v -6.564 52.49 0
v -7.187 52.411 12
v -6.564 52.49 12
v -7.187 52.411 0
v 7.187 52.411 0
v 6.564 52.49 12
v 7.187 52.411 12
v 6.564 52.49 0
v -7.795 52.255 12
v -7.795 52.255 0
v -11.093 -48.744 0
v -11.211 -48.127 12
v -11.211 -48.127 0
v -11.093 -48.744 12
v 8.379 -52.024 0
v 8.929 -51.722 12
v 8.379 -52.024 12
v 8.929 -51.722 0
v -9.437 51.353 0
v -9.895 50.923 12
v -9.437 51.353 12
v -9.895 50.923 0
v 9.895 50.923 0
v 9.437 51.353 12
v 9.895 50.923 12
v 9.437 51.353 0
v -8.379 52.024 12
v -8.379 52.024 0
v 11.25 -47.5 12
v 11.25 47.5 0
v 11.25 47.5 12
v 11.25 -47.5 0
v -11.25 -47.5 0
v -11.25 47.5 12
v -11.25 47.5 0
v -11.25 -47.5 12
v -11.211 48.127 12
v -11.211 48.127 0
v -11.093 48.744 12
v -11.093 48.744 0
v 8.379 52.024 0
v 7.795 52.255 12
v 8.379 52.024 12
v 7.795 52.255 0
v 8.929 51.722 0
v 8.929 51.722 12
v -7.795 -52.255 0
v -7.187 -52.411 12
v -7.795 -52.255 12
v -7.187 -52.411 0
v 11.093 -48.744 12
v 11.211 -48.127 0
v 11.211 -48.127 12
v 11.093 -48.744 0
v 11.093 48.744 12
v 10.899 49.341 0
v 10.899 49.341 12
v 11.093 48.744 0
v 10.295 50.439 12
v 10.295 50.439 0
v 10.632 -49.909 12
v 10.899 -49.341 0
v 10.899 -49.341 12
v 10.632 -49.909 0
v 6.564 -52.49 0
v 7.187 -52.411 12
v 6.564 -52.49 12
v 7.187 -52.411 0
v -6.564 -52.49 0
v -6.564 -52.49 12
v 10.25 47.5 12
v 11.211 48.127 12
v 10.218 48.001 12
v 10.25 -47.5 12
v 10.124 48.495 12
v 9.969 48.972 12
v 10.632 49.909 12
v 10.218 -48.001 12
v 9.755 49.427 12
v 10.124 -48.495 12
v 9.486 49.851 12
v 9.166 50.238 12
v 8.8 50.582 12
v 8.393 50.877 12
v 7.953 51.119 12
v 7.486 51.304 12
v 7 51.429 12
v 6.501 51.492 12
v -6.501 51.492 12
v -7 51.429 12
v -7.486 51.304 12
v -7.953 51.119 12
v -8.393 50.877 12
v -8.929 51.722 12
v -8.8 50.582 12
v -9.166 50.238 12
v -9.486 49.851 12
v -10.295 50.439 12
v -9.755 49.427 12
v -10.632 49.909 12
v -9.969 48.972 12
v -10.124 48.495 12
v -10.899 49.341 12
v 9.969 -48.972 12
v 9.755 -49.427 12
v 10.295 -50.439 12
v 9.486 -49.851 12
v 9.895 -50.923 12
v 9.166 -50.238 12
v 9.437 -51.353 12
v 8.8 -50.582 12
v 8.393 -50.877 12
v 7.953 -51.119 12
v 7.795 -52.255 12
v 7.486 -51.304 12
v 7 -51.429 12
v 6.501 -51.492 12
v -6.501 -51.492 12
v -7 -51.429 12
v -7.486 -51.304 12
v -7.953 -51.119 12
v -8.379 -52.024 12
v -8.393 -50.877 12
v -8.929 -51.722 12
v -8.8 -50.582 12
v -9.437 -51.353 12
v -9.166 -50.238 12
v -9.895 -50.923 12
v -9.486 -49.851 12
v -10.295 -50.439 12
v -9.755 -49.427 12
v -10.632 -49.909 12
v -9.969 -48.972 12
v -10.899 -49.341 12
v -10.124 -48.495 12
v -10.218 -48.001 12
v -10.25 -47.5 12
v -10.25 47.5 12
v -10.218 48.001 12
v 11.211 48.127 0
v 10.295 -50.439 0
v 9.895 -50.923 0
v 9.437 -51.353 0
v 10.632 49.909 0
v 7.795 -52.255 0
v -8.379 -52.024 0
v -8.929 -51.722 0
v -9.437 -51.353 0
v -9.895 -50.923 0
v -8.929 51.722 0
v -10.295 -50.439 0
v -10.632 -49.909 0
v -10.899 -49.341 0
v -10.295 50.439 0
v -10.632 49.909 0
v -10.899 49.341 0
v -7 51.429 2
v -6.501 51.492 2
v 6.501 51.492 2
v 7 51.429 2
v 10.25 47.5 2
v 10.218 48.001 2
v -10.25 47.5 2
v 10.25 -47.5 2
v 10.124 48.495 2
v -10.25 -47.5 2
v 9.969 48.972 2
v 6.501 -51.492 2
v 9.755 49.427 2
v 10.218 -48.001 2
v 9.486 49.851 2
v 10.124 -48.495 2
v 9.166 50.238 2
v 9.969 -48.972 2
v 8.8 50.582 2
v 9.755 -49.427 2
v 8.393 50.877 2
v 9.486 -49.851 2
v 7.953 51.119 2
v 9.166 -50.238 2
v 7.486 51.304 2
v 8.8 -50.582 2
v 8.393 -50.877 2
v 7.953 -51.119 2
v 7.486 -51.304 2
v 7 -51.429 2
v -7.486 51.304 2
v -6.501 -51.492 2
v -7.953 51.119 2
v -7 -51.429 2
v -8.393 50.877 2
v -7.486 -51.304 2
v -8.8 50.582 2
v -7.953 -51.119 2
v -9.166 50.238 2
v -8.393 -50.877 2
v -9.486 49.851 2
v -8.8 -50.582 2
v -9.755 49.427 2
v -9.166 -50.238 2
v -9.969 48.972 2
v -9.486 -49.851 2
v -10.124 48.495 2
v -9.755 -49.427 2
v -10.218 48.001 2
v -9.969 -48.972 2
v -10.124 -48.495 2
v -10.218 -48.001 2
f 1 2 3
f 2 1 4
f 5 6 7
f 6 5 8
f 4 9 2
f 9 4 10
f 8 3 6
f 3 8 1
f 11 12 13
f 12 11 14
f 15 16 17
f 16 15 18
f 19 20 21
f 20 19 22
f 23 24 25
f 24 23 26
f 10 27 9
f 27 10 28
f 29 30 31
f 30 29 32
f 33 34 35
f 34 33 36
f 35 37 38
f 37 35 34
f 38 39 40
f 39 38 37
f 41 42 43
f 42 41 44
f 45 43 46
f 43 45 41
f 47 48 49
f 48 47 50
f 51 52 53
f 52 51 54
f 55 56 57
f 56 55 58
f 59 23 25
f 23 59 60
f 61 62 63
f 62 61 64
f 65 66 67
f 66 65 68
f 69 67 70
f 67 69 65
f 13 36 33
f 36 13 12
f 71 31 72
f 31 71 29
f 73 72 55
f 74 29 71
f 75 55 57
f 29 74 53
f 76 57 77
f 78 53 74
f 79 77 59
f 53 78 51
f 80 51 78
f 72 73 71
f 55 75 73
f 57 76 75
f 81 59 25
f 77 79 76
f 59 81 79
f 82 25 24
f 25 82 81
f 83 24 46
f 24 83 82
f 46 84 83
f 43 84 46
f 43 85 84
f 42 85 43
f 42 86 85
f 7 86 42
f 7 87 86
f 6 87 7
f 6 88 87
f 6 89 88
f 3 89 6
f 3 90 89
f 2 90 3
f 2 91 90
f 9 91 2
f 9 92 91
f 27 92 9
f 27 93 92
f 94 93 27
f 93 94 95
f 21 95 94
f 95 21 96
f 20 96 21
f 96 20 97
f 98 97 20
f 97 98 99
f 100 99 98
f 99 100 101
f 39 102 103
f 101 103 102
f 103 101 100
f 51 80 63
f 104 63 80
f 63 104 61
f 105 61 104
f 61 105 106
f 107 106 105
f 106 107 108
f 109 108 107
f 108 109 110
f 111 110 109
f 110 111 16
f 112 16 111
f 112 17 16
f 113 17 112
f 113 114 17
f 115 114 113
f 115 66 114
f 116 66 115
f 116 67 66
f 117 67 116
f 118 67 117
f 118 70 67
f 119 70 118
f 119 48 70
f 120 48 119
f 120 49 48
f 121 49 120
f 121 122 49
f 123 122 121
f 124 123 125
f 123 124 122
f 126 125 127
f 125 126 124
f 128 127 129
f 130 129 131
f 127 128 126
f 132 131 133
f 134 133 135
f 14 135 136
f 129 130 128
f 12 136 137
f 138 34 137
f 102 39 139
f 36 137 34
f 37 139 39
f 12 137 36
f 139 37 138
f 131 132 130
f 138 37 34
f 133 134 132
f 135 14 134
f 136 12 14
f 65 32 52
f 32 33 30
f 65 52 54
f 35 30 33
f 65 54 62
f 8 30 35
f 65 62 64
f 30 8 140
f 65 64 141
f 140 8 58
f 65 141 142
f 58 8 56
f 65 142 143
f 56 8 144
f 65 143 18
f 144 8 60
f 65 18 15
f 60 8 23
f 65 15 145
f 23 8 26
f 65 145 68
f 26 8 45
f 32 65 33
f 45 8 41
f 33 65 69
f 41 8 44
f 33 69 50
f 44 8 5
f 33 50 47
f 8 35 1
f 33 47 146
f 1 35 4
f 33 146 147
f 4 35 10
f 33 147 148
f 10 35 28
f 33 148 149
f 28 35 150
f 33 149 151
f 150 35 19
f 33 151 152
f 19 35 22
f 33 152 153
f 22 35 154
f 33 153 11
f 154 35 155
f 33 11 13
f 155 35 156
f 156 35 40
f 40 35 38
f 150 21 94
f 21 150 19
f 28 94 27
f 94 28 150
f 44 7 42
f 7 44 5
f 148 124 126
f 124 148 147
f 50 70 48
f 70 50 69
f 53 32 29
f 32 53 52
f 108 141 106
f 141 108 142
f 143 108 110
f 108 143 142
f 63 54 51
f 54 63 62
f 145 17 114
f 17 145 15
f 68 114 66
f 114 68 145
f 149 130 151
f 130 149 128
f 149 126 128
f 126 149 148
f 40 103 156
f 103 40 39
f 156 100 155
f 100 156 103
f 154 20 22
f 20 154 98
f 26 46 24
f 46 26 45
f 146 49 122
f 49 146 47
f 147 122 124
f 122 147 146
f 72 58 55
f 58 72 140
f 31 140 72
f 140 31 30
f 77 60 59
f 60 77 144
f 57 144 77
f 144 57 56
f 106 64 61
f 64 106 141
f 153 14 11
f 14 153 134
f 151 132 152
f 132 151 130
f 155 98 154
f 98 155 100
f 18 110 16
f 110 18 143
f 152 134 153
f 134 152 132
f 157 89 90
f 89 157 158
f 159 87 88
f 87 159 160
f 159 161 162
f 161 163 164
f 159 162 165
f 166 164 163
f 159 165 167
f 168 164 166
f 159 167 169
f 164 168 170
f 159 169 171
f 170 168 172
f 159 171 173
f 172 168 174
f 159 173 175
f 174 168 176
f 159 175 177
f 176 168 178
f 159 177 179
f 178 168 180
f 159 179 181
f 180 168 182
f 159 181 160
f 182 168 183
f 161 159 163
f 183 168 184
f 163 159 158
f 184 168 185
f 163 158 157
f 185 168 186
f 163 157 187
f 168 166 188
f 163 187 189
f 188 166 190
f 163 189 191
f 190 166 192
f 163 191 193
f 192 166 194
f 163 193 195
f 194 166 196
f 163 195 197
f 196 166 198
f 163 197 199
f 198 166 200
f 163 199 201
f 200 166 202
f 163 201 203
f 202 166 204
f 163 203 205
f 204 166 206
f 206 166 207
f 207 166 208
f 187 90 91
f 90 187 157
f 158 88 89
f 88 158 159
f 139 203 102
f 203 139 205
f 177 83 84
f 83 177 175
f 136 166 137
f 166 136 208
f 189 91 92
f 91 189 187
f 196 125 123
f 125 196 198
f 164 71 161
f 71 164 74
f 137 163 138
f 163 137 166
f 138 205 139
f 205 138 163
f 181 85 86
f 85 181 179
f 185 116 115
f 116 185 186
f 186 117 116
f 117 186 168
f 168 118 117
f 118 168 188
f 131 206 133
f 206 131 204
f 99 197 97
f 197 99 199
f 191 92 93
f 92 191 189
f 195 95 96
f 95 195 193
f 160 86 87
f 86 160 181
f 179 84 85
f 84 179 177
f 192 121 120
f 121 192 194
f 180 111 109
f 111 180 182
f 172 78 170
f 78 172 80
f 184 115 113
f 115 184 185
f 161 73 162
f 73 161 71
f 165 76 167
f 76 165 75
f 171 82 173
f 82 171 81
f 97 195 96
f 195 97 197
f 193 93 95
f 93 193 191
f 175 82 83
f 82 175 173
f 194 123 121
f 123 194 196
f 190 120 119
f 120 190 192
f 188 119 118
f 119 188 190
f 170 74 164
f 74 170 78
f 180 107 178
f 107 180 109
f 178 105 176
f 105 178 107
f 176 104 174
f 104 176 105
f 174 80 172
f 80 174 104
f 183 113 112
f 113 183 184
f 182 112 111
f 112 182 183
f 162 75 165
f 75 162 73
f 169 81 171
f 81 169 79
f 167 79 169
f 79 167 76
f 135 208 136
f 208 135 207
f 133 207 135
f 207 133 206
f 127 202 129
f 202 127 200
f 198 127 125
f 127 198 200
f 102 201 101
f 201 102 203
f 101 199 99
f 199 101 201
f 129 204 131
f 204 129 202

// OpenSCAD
$fn = 50;


difference() {
	union() {
		hull() {
			translate(v = [-6.2500000000, 47.5000000000, 0]) {
				cylinder(h = 12, r = 5);
			}
			translate(v = [6.2500000000, 47.5000000000, 0]) {
				cylinder(h = 12, r = 5);
			}
			translate(v = [-6.2500000000, -47.5000000000, 0]) {
				cylinder(h = 12, r = 5);
			}
			translate(v = [6.2500000000, -47.5000000000, 0]) {
				cylinder(h = 12, r = 5);
			}
		}
	}
	union() {
		translate(v = [0, 0, 2]) {
			hull() {
				translate(v = [-6.2500000000, 47.5000000000, 0]) {
					cylinder(h = 10, r = 4);
				}
				translate(v = [6.2500000000, 47.5000000000, 0]) {
					cylinder(h = 10, r = 4);
				}
				translate(v = [-6.2500000000, -47.5000000000, 0]) {
					cylinder(h = 10, r = 4);
				}
				translate(v = [6.2500000000, -47.5000000000, 0]) {
					cylinder(h = 10, r = 4);
				}
			}
		}
	}
}
